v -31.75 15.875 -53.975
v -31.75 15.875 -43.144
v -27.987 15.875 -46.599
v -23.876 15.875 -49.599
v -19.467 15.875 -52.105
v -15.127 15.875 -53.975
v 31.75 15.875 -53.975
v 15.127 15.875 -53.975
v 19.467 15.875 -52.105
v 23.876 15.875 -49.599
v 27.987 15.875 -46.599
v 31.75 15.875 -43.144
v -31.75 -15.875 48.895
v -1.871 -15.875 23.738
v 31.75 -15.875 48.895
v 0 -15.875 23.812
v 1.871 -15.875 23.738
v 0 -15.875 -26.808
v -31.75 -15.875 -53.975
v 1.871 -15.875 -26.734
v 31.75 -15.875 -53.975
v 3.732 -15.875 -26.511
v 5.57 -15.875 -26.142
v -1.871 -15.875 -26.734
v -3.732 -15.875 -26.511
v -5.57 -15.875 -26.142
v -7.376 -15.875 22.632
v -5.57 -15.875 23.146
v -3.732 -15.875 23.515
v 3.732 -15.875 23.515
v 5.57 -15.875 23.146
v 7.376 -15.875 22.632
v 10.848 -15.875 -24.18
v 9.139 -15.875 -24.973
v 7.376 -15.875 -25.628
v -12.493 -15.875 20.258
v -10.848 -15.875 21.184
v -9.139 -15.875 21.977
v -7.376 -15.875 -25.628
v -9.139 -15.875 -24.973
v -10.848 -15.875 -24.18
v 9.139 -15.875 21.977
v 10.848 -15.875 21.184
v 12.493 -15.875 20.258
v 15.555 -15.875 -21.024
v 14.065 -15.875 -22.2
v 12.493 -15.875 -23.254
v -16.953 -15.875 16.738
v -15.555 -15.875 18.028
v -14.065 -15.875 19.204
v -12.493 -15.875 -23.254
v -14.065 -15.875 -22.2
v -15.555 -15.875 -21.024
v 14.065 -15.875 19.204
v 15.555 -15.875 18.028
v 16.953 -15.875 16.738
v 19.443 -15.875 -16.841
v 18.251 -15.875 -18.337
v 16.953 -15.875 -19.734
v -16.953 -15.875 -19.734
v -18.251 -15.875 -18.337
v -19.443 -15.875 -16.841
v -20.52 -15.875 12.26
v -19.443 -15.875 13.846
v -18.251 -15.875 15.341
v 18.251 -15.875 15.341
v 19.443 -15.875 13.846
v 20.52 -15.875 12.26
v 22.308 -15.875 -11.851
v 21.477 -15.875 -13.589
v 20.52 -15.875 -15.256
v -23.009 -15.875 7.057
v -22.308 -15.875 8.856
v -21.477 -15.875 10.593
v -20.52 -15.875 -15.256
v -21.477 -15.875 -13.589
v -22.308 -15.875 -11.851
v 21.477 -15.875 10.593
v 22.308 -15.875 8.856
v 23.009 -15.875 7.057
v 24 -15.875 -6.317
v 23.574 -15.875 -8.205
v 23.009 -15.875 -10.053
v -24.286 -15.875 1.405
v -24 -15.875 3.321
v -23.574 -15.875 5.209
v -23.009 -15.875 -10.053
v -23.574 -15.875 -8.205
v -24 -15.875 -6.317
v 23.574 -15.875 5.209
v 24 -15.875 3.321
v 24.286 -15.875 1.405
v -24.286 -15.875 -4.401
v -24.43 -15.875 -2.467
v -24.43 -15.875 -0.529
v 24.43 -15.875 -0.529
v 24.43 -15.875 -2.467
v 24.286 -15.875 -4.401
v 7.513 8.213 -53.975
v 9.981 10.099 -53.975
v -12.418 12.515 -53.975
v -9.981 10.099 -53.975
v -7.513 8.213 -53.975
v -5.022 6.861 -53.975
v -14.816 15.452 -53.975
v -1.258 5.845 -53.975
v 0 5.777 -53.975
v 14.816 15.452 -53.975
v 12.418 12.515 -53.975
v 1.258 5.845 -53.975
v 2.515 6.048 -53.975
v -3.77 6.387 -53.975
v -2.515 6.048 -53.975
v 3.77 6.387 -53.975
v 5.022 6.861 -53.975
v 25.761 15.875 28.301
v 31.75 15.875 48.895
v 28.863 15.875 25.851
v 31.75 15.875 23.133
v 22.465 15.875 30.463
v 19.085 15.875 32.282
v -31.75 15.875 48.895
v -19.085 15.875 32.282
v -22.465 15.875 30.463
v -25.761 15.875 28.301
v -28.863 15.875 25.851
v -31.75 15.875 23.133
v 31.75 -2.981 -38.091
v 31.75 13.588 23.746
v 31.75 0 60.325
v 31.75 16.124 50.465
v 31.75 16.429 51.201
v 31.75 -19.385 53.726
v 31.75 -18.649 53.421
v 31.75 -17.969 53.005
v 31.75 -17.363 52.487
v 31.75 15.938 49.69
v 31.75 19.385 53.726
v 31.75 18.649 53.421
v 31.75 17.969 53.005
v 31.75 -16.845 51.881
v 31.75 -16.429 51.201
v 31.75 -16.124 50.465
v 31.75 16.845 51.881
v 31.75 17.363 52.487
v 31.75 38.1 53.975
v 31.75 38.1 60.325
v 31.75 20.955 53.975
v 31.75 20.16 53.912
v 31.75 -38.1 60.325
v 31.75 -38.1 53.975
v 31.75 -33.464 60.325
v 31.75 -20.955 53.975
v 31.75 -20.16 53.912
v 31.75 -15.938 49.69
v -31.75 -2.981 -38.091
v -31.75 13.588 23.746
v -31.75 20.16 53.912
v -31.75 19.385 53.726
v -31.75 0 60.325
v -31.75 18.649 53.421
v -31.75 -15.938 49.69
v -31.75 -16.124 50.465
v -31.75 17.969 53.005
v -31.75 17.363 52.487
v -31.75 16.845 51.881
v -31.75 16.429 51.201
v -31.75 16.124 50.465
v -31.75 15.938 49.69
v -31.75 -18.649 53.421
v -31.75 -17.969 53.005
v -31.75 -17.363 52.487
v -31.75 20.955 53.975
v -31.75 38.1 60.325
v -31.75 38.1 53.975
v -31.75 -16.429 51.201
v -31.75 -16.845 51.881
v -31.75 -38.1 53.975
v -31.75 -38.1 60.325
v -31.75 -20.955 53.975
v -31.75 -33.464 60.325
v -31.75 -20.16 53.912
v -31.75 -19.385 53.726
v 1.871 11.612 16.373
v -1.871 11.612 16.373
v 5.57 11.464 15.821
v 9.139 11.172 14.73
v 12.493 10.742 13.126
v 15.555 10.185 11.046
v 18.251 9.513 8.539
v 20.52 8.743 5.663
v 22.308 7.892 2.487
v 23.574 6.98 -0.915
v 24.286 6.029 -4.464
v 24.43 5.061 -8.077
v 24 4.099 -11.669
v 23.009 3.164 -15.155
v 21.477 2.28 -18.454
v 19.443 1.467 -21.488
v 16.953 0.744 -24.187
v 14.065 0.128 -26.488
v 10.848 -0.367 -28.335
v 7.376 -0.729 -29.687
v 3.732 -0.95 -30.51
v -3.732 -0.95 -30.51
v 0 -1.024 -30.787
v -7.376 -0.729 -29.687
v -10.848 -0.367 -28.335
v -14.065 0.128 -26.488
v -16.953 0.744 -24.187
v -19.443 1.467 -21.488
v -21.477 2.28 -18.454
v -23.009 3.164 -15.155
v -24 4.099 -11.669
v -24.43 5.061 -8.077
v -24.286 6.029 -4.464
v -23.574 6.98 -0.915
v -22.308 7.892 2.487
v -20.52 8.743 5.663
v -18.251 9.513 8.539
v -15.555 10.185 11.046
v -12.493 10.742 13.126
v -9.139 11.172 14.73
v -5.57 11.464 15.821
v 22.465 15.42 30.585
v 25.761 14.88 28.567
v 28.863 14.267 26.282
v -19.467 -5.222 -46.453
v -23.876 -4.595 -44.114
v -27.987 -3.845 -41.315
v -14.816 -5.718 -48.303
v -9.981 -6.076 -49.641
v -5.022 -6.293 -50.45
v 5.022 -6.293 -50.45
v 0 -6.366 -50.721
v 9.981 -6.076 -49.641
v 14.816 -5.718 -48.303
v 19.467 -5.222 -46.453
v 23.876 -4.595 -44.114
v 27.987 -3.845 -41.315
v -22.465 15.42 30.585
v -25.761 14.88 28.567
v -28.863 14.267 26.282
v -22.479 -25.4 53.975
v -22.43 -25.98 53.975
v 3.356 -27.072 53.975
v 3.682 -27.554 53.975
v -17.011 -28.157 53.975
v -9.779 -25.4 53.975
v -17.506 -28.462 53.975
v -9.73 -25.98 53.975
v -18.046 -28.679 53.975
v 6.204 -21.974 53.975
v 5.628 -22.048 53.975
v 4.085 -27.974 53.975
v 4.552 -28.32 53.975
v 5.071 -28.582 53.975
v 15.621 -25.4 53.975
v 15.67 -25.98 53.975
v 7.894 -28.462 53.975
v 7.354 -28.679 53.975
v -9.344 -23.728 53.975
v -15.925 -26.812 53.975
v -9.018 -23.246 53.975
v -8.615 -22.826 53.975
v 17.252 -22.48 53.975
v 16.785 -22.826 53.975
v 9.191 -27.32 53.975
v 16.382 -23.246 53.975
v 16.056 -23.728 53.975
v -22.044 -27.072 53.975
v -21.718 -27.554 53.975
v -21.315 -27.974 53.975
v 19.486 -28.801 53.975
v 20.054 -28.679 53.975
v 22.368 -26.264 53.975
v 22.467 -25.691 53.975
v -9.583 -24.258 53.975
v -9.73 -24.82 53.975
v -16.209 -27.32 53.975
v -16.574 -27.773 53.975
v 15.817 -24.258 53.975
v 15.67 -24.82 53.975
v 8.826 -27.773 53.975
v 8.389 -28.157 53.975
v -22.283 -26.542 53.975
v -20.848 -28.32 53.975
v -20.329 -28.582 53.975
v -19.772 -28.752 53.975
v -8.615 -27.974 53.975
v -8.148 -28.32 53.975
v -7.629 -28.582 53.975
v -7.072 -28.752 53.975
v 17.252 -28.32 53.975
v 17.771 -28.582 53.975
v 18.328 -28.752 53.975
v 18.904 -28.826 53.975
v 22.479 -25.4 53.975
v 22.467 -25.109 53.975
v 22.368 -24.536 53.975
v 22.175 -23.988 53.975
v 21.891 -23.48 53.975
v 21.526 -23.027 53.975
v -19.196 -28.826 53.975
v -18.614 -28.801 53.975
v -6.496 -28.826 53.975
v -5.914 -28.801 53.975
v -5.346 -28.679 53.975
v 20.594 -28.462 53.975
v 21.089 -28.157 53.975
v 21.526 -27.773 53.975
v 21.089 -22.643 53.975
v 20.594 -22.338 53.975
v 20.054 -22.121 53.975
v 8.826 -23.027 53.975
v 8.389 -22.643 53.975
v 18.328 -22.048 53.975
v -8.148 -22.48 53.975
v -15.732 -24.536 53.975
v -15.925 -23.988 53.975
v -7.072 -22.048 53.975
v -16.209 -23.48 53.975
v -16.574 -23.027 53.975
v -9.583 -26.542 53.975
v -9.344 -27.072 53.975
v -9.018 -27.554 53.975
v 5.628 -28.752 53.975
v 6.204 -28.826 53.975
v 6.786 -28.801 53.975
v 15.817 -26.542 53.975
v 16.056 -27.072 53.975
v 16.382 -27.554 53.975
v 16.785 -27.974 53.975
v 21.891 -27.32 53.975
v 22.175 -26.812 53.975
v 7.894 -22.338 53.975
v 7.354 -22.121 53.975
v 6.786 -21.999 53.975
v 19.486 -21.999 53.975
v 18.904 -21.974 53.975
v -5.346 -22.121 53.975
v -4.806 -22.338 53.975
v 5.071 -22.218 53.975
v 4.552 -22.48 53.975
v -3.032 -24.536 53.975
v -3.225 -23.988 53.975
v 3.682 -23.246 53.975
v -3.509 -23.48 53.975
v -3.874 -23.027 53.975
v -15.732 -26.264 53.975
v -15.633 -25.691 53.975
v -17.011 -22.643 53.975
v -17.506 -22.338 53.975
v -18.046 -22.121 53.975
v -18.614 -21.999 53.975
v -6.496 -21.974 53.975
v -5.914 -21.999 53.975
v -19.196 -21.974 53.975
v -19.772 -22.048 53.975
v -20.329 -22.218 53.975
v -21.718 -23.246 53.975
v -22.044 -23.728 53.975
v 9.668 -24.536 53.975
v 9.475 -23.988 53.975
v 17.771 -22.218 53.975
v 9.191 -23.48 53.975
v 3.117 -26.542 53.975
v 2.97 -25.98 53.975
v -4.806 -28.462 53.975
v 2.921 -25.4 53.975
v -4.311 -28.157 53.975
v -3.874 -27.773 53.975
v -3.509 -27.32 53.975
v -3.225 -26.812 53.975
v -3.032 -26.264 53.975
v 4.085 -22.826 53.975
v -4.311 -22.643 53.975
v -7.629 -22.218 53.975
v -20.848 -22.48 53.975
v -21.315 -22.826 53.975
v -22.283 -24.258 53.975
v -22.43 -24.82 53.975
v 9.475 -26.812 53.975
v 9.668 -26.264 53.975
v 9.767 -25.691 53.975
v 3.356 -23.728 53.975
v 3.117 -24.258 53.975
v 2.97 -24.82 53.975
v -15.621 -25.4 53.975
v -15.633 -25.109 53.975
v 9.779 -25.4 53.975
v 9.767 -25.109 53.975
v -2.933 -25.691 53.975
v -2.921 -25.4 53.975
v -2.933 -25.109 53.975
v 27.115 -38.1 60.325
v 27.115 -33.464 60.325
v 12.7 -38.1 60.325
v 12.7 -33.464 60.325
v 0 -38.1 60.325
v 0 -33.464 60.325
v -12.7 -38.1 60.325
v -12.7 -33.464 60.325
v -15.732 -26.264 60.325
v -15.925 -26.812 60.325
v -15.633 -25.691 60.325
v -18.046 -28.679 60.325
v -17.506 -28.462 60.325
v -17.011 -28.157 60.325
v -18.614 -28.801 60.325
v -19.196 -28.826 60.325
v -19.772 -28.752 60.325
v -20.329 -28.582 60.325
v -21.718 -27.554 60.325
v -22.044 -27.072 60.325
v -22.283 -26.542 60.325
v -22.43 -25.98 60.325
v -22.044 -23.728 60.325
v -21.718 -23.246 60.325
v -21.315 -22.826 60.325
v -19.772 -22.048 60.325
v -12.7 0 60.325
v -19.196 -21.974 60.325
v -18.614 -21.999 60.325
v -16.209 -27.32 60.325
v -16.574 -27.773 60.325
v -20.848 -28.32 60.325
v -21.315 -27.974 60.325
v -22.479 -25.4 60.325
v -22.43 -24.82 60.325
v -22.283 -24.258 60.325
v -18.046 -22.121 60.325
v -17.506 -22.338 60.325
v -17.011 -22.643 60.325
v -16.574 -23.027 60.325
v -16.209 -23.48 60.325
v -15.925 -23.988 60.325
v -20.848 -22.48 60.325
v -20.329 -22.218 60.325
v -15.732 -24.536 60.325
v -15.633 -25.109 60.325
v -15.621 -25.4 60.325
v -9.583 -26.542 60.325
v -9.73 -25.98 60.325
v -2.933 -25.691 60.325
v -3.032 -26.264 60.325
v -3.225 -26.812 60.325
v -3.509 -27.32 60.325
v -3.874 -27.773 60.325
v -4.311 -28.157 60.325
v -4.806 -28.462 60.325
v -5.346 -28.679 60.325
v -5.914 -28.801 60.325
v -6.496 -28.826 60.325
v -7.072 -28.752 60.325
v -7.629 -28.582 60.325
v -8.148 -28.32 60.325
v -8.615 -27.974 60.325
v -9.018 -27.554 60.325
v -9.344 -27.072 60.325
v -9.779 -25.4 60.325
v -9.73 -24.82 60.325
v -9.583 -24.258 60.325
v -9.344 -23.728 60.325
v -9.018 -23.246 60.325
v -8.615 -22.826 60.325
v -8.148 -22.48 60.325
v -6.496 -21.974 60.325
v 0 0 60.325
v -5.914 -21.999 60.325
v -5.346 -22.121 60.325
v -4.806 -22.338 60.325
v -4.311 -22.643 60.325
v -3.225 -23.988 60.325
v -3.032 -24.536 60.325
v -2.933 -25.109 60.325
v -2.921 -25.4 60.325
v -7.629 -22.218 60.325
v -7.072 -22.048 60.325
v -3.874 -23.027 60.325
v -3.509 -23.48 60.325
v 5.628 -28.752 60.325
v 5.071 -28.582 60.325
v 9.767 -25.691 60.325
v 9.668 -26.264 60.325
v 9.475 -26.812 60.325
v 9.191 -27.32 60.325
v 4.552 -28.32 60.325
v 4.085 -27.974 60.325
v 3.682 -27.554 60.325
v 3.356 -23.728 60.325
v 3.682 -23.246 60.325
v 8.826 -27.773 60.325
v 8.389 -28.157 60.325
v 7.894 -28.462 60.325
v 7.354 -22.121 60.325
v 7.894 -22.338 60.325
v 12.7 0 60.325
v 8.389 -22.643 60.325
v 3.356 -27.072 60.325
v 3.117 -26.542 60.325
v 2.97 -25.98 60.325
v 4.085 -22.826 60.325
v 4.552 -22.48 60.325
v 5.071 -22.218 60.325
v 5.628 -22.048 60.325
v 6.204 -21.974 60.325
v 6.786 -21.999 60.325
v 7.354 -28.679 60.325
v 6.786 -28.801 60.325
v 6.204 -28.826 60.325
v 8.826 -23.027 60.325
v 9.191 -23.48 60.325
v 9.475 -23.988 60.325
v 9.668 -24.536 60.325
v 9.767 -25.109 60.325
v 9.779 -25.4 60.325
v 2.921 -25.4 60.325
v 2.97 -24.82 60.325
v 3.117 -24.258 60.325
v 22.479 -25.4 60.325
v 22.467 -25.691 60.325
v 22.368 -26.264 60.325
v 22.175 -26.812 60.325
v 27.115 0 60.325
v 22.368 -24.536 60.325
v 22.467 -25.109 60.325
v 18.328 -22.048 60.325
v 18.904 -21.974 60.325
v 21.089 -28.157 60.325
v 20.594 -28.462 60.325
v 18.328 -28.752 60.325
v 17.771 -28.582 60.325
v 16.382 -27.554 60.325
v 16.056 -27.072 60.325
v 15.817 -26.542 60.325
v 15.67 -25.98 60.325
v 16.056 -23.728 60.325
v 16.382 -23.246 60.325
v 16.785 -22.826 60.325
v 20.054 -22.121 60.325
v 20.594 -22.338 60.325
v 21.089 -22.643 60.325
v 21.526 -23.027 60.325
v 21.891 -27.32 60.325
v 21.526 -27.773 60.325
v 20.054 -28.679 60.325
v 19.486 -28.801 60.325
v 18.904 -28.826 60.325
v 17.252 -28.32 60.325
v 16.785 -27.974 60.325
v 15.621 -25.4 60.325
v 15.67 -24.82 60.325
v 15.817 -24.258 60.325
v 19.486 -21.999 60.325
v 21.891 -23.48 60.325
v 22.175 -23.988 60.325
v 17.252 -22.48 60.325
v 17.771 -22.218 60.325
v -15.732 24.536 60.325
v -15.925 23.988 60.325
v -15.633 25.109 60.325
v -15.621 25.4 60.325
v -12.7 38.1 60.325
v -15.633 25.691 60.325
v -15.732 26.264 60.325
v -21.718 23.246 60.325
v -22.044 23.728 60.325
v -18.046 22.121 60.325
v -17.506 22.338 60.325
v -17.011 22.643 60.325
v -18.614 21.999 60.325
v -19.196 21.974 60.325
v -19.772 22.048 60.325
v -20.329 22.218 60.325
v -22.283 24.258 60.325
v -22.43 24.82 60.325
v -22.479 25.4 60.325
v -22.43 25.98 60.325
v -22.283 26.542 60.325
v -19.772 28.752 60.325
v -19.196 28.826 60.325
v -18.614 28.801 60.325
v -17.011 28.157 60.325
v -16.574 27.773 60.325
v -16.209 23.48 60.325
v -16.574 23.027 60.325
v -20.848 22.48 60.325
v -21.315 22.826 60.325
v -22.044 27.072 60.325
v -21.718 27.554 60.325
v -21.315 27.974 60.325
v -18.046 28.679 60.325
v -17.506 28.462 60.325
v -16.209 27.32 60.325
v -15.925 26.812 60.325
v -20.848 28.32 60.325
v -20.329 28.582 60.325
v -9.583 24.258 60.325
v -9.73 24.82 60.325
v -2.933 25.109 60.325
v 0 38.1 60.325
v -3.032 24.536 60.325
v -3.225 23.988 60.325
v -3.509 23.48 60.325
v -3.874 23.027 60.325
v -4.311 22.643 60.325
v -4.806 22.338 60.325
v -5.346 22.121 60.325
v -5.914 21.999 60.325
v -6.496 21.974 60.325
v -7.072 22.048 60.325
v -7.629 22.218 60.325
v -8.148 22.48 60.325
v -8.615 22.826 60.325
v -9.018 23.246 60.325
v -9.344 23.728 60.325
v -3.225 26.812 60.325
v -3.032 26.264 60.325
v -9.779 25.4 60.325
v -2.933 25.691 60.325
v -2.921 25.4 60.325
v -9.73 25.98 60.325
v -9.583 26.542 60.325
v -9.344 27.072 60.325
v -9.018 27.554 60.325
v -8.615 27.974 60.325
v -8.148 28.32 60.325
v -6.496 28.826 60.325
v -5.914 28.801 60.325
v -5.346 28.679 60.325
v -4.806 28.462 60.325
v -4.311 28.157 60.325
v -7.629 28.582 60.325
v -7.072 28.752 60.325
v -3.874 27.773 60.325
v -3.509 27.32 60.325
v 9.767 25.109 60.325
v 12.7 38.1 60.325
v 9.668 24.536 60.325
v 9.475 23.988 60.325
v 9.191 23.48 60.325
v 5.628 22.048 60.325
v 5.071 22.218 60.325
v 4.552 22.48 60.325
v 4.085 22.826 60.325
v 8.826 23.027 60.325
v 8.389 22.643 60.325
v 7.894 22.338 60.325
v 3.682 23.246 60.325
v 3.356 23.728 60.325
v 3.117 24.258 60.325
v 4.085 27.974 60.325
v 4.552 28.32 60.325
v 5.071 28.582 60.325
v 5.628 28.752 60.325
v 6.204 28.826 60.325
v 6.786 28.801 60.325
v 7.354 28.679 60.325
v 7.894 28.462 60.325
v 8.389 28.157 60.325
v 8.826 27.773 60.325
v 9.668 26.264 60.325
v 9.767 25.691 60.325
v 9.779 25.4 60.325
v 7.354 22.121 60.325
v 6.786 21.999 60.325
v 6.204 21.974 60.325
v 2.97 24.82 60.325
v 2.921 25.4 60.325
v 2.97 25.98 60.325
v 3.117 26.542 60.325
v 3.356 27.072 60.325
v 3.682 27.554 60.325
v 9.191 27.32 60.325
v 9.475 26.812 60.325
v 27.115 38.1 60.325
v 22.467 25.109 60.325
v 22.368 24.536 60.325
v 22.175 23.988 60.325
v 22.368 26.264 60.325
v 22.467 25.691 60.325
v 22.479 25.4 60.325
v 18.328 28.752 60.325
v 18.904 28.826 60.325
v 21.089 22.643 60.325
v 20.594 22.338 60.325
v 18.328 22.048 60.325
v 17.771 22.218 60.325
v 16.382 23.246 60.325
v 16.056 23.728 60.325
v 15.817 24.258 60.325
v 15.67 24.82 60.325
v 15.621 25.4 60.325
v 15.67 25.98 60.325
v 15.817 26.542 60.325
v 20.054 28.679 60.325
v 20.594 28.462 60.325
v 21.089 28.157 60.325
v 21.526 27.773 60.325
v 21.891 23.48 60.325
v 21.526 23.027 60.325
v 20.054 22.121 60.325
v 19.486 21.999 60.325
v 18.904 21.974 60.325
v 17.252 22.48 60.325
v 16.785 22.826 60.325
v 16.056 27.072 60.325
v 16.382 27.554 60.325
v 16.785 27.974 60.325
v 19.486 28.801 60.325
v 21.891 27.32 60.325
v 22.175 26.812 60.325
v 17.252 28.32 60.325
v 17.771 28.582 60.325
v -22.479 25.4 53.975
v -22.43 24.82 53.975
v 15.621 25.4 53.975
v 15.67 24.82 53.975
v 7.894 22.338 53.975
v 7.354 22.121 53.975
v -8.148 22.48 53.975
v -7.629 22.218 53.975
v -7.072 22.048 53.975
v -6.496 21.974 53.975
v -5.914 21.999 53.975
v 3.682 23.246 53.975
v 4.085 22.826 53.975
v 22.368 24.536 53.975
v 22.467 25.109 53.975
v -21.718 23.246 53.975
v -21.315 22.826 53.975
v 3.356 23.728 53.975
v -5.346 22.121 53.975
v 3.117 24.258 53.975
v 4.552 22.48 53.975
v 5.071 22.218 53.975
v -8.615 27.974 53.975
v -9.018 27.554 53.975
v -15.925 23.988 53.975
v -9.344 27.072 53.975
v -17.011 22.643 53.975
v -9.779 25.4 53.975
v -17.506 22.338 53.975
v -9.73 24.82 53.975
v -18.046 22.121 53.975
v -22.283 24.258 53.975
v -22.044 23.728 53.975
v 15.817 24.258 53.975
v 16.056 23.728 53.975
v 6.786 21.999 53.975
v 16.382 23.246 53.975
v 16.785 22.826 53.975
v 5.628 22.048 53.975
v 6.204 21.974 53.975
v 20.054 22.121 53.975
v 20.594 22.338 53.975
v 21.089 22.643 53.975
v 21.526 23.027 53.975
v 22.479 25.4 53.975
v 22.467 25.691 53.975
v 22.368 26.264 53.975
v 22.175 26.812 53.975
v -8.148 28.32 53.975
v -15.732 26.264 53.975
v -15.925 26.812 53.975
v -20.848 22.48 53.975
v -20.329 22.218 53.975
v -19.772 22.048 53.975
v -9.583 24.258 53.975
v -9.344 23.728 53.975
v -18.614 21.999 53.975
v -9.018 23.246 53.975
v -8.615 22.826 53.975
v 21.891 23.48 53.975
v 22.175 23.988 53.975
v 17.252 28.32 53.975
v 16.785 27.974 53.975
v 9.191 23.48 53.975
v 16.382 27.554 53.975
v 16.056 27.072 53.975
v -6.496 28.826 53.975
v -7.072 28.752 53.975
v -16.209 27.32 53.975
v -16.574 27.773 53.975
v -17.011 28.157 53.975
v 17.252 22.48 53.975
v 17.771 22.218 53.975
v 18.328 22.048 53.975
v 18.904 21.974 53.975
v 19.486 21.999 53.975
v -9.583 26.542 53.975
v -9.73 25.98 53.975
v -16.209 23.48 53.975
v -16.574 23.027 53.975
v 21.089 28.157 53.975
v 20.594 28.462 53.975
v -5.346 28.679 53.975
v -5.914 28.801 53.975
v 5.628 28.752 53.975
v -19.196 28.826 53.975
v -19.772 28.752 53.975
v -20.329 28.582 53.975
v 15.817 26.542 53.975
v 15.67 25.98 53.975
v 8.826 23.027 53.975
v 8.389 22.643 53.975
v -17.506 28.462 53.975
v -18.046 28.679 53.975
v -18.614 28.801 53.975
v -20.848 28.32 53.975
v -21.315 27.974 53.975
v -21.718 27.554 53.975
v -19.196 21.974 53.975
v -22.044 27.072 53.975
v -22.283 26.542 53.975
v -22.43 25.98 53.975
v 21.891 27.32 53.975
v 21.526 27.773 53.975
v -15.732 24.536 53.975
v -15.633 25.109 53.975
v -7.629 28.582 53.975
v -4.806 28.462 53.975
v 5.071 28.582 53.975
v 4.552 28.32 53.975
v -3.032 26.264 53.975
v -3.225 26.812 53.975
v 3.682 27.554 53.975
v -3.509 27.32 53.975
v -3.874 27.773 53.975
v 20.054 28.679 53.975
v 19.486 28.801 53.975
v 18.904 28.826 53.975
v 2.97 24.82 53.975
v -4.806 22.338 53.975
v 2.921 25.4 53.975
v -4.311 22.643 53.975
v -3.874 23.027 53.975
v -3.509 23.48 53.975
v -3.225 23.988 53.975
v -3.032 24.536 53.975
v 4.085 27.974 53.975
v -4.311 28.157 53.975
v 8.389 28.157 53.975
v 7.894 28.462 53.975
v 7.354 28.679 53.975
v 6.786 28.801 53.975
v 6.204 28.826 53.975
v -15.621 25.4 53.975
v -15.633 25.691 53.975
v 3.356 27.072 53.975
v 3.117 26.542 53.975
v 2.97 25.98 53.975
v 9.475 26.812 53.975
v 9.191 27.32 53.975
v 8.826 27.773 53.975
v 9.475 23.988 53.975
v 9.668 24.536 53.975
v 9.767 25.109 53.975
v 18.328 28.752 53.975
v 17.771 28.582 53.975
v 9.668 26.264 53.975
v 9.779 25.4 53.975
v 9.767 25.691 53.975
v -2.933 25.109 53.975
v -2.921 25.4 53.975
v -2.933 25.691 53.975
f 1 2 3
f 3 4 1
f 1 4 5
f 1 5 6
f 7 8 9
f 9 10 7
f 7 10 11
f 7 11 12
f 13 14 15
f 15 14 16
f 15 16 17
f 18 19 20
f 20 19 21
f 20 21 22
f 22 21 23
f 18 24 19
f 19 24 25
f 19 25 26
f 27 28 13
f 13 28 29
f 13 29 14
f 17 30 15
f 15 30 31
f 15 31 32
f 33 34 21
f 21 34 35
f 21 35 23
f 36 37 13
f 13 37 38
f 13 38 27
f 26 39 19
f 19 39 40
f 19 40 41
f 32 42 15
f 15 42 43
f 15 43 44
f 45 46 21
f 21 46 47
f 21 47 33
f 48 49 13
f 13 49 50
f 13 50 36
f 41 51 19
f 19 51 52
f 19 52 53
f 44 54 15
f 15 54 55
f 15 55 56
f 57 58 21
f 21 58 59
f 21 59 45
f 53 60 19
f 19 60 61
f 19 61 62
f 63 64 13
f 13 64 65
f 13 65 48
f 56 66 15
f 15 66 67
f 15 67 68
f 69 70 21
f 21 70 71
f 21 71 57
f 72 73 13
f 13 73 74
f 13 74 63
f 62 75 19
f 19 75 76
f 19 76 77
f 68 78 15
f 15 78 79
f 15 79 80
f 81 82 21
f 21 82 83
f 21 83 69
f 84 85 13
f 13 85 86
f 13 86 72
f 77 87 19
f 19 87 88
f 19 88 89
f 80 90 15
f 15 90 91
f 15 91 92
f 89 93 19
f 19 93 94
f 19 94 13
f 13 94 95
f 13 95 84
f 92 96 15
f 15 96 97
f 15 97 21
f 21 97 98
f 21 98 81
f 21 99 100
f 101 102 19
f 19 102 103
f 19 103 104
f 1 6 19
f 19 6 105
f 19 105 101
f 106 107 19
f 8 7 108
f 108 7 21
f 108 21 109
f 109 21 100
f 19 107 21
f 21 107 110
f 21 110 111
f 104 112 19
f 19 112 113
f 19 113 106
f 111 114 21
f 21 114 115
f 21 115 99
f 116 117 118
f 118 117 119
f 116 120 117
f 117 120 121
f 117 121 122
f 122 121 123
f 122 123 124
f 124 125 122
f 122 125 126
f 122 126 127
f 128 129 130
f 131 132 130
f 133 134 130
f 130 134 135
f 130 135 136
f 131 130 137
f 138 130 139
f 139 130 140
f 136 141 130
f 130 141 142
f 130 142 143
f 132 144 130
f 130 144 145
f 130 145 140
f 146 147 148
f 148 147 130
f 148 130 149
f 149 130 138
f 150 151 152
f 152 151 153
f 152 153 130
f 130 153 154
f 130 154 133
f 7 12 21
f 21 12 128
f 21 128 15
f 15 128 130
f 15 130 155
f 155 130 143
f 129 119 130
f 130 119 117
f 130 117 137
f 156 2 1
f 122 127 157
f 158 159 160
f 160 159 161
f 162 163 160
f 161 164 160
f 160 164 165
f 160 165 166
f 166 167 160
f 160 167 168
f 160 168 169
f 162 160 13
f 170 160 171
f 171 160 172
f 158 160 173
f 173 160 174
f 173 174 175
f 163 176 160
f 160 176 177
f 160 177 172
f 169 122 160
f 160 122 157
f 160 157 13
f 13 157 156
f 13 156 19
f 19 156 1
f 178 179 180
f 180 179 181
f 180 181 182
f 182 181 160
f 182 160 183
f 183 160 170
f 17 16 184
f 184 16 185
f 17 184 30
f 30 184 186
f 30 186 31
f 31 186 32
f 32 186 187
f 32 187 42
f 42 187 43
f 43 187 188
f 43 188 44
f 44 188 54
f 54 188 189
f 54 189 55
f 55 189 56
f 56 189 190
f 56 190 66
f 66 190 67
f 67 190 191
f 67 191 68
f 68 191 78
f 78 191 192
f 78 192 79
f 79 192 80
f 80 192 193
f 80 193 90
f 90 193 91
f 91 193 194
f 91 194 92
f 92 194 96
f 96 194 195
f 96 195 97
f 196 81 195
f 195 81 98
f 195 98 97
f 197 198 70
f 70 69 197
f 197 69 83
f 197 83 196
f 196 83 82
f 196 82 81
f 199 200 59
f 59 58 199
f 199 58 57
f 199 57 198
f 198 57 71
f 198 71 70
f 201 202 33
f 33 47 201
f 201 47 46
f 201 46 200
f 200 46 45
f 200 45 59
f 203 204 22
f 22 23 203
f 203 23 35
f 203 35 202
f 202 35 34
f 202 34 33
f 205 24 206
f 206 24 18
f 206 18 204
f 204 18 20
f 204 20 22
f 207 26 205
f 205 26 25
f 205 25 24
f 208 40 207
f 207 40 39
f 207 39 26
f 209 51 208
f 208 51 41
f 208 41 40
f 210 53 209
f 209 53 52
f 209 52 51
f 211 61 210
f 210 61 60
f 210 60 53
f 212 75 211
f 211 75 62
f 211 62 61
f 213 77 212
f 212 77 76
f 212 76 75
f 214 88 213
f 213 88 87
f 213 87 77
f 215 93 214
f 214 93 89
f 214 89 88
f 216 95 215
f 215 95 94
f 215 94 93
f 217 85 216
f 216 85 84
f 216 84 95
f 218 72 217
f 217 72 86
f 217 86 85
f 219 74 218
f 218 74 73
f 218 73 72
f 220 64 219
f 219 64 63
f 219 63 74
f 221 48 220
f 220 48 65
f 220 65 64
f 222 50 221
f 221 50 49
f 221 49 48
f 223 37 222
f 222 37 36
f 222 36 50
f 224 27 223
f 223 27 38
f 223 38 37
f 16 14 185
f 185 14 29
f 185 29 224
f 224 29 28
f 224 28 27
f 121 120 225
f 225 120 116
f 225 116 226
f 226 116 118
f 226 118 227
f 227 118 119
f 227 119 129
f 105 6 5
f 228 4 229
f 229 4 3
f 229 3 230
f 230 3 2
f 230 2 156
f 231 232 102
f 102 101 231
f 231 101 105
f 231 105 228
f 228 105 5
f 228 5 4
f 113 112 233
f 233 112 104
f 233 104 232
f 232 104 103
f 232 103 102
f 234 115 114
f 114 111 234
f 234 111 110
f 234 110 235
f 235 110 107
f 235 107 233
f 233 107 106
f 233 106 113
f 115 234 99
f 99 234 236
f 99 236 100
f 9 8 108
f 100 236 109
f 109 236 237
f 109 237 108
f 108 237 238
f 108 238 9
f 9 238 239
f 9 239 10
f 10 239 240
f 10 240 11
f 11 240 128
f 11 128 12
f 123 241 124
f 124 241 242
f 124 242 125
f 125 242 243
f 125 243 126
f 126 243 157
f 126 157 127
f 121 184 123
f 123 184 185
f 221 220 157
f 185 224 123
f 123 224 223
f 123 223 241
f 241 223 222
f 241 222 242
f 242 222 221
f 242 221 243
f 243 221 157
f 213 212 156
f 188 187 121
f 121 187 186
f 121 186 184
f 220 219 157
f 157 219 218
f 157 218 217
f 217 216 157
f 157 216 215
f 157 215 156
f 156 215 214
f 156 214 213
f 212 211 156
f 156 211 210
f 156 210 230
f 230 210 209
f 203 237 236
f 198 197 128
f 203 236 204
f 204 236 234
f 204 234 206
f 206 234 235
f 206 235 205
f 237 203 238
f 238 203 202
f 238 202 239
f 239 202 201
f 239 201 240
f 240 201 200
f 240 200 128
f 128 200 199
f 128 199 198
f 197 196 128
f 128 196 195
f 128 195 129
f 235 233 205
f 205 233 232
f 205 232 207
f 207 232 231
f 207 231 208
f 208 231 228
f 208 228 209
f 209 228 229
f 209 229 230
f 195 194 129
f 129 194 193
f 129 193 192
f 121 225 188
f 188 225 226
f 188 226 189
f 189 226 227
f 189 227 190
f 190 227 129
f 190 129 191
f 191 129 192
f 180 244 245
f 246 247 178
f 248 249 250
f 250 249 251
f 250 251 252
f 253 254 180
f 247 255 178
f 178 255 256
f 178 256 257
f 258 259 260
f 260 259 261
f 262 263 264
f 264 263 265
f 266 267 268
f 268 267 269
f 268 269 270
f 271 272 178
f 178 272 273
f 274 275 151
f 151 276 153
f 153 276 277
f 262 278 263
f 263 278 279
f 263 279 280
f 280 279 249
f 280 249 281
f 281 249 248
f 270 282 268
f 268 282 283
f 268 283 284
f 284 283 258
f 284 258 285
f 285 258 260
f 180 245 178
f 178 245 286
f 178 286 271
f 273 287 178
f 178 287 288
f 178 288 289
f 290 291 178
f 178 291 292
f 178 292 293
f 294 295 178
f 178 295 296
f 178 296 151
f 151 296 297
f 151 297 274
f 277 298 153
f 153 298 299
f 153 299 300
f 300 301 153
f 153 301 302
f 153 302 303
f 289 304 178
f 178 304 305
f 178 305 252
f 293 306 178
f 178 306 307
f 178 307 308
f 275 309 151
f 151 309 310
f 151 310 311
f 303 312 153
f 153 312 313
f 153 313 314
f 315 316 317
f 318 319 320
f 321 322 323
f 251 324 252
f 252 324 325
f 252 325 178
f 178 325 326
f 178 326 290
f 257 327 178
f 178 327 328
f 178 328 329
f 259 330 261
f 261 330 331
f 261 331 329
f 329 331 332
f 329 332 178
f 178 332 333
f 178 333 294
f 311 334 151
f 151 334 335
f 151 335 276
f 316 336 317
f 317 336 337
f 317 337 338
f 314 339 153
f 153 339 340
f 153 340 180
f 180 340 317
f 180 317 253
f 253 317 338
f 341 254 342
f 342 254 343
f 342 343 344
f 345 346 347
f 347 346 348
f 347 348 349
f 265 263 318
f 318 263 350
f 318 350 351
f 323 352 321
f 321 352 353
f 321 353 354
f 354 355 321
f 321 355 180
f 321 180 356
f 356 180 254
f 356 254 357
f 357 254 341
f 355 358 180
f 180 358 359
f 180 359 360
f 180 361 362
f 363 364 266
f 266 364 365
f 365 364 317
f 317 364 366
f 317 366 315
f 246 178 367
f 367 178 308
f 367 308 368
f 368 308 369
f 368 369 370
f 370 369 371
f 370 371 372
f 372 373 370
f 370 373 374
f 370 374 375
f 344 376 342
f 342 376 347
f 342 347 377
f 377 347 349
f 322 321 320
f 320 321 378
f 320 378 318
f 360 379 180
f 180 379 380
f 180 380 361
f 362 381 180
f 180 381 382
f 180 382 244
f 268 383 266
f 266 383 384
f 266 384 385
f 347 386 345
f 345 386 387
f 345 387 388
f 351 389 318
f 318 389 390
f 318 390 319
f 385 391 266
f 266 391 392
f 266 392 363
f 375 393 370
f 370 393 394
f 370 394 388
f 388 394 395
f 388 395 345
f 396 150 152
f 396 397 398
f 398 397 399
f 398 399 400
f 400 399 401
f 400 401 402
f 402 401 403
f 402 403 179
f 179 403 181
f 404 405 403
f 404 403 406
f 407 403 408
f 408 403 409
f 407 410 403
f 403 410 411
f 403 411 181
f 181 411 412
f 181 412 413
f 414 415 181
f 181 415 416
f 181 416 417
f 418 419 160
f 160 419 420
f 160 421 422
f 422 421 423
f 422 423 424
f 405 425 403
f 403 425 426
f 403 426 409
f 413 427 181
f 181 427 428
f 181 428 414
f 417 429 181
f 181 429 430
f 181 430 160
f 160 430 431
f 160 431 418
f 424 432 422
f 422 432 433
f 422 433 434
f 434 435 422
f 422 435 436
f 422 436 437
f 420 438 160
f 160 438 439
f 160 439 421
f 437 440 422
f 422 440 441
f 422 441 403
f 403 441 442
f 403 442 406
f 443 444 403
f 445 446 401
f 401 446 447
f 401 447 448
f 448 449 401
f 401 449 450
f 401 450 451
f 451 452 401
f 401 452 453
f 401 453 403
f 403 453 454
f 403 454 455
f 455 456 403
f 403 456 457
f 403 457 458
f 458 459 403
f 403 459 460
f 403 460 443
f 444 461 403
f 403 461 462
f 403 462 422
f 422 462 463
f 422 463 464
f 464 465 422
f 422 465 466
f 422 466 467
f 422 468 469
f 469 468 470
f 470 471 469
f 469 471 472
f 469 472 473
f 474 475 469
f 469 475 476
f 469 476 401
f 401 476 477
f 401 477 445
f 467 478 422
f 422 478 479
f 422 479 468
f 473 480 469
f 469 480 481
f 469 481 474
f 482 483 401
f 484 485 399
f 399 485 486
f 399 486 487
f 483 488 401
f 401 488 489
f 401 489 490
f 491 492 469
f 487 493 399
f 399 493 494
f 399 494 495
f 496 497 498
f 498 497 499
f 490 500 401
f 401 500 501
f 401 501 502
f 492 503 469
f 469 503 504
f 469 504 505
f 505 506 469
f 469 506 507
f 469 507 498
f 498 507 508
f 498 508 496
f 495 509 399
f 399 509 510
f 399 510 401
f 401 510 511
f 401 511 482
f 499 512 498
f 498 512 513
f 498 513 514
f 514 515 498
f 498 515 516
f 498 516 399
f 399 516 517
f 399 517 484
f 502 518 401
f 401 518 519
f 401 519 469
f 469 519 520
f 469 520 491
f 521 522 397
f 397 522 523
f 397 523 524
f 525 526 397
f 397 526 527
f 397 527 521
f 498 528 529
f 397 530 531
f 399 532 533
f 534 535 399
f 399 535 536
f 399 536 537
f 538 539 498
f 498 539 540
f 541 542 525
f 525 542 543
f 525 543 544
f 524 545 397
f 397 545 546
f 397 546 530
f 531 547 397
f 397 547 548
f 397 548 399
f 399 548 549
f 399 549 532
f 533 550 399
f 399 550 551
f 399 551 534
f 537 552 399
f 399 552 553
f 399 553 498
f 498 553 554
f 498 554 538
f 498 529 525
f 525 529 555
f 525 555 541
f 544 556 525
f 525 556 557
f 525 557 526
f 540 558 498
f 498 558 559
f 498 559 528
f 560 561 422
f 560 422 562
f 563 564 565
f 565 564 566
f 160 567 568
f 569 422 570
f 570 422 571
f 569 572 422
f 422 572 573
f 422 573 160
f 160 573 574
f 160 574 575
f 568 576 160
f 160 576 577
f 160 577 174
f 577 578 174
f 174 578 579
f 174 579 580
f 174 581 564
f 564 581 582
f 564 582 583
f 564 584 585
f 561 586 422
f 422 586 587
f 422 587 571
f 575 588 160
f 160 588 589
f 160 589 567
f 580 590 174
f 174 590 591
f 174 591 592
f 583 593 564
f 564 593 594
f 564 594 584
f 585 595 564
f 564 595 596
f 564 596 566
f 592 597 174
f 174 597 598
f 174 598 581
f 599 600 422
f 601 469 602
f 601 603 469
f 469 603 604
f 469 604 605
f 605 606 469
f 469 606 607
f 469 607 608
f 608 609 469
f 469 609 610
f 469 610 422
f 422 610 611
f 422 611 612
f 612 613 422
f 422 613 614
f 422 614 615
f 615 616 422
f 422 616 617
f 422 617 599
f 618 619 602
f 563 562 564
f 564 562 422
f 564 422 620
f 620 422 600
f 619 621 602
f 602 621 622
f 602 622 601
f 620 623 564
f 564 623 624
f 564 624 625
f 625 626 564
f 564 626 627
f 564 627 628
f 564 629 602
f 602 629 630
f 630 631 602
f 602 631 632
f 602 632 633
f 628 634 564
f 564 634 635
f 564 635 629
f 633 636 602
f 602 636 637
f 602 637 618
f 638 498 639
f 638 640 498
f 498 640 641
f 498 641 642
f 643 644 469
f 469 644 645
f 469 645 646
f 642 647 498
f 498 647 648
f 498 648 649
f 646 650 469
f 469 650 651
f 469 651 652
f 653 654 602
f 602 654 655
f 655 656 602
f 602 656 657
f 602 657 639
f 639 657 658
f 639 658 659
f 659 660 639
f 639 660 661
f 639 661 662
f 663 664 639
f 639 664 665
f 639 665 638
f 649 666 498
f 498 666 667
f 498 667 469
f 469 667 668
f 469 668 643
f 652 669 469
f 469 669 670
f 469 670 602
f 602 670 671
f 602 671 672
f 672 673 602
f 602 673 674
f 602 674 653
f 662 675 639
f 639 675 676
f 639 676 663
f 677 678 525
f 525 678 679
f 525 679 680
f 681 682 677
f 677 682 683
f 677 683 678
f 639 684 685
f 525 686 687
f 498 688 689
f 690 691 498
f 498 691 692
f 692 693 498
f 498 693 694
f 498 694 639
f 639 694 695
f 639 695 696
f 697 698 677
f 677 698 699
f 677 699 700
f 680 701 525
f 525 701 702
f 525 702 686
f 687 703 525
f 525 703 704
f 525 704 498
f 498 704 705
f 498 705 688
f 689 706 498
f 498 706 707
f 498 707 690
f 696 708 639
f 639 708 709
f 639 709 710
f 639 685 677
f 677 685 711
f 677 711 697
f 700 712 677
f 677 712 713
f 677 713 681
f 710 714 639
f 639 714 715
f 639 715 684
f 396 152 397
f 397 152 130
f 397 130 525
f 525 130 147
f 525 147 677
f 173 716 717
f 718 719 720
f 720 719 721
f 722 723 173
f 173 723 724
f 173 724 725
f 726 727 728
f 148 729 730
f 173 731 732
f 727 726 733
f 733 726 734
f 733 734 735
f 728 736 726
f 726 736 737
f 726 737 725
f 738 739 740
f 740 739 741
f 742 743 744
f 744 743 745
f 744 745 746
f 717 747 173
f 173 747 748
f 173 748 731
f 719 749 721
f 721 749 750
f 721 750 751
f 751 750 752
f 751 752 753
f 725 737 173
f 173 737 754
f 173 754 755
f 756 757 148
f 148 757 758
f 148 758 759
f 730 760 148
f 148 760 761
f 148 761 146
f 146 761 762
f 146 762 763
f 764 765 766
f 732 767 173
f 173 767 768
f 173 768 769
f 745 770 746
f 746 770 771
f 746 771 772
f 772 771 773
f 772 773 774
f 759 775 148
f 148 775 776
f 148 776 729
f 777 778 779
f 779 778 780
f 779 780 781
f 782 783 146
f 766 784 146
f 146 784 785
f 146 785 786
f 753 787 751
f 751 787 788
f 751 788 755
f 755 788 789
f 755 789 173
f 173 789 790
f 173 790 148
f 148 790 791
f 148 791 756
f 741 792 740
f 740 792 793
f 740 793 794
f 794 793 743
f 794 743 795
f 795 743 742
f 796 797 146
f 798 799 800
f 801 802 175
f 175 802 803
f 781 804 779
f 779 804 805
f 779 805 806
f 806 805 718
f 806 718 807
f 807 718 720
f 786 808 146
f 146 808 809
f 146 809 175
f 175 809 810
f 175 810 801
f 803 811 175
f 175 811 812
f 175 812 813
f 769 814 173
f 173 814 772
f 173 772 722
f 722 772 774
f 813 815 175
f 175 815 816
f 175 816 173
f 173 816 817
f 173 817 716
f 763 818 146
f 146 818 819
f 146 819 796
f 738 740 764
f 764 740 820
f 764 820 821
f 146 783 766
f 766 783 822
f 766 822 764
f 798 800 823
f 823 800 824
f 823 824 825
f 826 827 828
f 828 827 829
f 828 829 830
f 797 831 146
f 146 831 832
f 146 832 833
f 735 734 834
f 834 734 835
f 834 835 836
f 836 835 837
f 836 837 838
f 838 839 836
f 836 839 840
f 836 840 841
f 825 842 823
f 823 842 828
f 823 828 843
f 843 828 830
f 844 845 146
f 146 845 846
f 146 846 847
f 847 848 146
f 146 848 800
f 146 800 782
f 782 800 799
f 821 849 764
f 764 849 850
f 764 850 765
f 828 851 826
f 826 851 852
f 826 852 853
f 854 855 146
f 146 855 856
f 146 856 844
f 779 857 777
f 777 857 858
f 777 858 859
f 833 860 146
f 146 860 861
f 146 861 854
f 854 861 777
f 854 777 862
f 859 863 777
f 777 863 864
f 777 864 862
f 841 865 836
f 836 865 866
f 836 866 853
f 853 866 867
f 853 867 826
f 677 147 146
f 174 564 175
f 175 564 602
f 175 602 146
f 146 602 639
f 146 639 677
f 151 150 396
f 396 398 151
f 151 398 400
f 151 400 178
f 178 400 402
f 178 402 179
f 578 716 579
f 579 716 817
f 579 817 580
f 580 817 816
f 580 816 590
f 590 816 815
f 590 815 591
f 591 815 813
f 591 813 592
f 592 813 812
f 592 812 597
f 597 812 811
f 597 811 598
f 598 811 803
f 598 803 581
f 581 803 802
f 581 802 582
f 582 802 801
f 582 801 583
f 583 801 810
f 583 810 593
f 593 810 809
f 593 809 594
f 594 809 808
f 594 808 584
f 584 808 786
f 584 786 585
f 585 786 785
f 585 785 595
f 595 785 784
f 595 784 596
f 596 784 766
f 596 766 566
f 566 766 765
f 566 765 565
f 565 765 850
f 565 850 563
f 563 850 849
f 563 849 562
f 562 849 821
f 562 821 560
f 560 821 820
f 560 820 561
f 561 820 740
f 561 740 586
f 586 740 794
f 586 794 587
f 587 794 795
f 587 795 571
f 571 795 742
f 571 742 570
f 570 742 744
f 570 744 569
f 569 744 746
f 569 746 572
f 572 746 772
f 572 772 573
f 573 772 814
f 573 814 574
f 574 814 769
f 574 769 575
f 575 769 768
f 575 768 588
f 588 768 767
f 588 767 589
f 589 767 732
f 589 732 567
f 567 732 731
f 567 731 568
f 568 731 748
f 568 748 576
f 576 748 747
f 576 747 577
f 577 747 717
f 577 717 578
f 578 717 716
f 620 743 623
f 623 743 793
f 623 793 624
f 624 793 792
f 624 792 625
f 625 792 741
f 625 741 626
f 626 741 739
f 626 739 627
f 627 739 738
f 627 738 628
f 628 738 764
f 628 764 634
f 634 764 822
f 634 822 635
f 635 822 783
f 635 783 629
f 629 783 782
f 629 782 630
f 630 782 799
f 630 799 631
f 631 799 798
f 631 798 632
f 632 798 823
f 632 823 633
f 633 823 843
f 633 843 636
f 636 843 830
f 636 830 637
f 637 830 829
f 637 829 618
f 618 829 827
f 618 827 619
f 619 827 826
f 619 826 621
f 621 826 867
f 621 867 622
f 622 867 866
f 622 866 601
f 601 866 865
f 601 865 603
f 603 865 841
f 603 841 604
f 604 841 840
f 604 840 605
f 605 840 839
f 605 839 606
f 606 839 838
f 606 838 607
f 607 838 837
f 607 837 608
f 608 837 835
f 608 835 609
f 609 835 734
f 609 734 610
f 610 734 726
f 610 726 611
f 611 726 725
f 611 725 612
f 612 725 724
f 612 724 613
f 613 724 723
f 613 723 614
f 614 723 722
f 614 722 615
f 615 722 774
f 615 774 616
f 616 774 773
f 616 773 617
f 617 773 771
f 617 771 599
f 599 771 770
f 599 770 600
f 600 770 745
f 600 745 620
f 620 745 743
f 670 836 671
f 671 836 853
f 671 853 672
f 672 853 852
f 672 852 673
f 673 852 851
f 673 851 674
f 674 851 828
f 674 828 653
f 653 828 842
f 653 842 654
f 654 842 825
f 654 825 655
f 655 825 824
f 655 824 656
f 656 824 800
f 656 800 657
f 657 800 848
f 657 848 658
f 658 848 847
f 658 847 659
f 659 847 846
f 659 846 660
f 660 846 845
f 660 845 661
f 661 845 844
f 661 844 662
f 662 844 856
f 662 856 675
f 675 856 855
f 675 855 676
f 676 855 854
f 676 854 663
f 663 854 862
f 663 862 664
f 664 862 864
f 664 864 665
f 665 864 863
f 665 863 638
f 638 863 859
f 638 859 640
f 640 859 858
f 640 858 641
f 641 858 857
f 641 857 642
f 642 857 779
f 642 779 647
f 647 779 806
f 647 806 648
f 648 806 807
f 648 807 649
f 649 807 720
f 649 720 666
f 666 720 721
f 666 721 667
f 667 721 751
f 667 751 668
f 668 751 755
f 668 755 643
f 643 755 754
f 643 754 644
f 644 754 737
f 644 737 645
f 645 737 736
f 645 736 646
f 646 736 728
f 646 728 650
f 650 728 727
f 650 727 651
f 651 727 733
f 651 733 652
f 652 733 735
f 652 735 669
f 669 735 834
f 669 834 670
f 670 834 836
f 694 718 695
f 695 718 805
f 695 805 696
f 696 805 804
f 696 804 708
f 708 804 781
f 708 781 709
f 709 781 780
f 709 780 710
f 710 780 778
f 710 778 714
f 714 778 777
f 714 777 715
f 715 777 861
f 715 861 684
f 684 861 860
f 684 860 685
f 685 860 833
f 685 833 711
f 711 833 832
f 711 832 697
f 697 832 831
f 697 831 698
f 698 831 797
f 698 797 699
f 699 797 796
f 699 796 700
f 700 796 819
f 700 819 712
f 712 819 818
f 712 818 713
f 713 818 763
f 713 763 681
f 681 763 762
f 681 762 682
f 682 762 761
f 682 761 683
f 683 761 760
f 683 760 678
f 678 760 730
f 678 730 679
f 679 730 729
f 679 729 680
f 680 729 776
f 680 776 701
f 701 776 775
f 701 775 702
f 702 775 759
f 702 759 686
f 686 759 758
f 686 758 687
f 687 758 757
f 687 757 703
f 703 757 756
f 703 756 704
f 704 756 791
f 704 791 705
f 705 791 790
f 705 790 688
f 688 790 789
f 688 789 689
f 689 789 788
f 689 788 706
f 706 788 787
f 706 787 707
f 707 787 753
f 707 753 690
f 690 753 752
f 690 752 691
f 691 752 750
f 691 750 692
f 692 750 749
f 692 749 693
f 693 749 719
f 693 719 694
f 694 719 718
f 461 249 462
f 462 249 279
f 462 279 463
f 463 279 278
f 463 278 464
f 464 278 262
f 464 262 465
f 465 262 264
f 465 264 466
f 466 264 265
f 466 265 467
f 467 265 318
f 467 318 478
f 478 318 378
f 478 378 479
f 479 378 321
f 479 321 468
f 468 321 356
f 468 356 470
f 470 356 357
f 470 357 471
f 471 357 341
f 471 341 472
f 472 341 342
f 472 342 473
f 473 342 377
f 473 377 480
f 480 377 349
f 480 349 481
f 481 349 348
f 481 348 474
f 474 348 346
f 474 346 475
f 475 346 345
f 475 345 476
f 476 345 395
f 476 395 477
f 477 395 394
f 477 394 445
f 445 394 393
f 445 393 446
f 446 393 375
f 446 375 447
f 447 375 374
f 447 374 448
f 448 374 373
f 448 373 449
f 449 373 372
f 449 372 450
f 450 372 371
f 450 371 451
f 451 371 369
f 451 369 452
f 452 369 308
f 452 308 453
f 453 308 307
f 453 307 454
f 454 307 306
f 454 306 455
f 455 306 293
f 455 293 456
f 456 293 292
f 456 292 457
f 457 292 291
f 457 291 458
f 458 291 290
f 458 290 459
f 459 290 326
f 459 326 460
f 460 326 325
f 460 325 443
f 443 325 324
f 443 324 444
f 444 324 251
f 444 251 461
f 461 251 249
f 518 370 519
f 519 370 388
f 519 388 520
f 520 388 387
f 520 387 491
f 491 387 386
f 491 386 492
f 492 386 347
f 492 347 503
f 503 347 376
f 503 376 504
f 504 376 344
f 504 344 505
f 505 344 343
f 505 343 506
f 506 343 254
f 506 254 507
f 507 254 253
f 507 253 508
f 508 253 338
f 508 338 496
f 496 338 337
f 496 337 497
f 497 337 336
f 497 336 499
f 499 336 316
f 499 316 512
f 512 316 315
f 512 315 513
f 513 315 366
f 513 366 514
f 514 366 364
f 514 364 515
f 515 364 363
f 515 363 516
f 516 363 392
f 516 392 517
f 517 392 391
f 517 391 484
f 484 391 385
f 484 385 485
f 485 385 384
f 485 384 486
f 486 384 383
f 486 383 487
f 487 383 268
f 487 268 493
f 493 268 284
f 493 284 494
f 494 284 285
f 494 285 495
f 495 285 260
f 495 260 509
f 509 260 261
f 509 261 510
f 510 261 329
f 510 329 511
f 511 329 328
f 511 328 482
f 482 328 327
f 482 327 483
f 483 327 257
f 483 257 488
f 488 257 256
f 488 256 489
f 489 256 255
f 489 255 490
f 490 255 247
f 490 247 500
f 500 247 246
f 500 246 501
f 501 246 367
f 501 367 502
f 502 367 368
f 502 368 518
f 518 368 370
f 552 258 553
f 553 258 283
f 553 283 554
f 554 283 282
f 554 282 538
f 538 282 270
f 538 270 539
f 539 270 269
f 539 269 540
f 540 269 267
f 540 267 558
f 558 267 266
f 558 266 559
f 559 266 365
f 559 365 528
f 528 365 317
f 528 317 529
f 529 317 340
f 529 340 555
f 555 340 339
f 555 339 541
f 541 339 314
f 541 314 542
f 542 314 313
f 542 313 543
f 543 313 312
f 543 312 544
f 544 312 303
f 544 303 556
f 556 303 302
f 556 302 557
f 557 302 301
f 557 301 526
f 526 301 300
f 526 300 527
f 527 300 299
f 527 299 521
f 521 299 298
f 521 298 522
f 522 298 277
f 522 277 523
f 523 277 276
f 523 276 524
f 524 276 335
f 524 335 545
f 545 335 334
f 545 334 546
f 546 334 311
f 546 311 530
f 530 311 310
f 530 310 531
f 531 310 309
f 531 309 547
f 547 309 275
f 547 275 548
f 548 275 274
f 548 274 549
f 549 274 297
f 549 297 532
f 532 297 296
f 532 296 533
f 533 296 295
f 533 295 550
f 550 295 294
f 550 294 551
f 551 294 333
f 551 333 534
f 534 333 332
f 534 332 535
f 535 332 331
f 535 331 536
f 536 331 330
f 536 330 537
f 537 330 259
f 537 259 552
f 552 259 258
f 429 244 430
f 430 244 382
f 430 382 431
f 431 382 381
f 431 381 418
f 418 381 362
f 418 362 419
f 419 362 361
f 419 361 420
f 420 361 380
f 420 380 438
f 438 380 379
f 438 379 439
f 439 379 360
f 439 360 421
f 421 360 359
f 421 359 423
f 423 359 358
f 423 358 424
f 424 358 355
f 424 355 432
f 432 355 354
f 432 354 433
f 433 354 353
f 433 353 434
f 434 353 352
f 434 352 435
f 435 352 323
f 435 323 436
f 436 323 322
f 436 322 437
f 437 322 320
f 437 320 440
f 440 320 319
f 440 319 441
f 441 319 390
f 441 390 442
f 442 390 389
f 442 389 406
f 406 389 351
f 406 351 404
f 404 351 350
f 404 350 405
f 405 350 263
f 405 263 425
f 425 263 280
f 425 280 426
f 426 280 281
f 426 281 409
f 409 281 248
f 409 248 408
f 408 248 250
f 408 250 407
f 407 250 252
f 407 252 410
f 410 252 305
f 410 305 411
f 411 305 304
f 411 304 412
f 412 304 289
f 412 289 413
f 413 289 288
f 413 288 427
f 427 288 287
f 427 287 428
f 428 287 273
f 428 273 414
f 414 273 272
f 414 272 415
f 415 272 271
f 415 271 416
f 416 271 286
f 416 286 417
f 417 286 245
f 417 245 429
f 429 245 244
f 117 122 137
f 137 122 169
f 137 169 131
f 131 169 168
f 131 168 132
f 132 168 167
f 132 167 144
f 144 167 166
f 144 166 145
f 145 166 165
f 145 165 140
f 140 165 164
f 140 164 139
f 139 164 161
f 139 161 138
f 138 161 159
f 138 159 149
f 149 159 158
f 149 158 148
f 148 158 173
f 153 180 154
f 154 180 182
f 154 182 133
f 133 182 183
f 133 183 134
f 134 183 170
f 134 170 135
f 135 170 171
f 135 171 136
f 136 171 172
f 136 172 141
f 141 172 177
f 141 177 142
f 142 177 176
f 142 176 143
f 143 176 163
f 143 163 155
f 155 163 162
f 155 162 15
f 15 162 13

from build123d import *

# Parameters (mm, degrees)
SKETCH1_W           = 107.95
SKETCH1_H           = 31.75
BOSS_EXTRUDE1_DEPTH = 31.75
SKETCH3_W           = 63.5
SKETCH3_H           = 76.2
SKETCH3_R           = 3.429
BOSS_EXTRUDE2_DEPTH = 6.35
FILLET1_R           = 5.08


with BuildPart() as part:
    # Sketch1 → Boss-Extrude1 (new, symmetric)
    with BuildSketch(Plane(origin=(0, 0, 0), x_dir=(0, 0, -1), z_dir=(1, 0, 0))):
        Rectangle(SKETCH1_W, SKETCH1_H)
    extrude(amount=BOSS_EXTRUDE1_DEPTH, both=True)

    # Sketch2 → Cut-Revolve1 (revolve, cut)
    with BuildSketch(Plane(origin=(0, 0, 0), x_dir=(0, 0, -1), z_dir=(1, 0, 0))):
        Polygon((30.787113889, -1.024256513), (21.709471638, -34.902478605), (-1.905, -28.575), (15.934173595, 38.001702221), (59.482939473, 26.332845573), (50.721408129, -6.365634557), align=None)
    revolve(axis=Axis((0, -21.465443212, 0), (0, 0.9659258262890701, -0.2588190451025143)), mode=Mode.SUBTRACT)

    # Sketch3 → Boss-Extrude2 (add)
    with BuildSketch(Plane.XY.offset(53.975)):
        Rectangle(SKETCH3_W, SKETCH3_H)
        with Locations((-19.05, 25.4)):
            Circle(SKETCH3_R, mode=Mode.SUBTRACT)
        with Locations((-6.35, 25.4)):
            Circle(SKETCH3_R, mode=Mode.SUBTRACT)
        with Locations((6.35, 25.4)):
            Circle(SKETCH3_R, mode=Mode.SUBTRACT)
        with Locations((19.05, 25.4)):
            Circle(SKETCH3_R, mode=Mode.SUBTRACT)
        with Locations((-6.35, -25.4)):
            Circle(SKETCH3_R, mode=Mode.SUBTRACT)
        with Locations((6.35, -25.4)):
            Circle(SKETCH3_R, mode=Mode.SUBTRACT)
        with Locations((19.05, -25.4)):
            Circle(SKETCH3_R, mode=Mode.SUBTRACT)
        with Locations((-19.05, -25.4)):
            Circle(SKETCH3_R, mode=Mode.SUBTRACT)
    extrude(amount=BOSS_EXTRUDE2_DEPTH)

    # Fillet1
    fillet1_edges = [part.edges().sort_by_distance(p)[0] for p in [
        (0, 15.875, 53.975),
        (0, -15.875, 53.975),
    ]]
    fillet(fillet1_edges, radius=FILLET1_R)


solid = part.part
